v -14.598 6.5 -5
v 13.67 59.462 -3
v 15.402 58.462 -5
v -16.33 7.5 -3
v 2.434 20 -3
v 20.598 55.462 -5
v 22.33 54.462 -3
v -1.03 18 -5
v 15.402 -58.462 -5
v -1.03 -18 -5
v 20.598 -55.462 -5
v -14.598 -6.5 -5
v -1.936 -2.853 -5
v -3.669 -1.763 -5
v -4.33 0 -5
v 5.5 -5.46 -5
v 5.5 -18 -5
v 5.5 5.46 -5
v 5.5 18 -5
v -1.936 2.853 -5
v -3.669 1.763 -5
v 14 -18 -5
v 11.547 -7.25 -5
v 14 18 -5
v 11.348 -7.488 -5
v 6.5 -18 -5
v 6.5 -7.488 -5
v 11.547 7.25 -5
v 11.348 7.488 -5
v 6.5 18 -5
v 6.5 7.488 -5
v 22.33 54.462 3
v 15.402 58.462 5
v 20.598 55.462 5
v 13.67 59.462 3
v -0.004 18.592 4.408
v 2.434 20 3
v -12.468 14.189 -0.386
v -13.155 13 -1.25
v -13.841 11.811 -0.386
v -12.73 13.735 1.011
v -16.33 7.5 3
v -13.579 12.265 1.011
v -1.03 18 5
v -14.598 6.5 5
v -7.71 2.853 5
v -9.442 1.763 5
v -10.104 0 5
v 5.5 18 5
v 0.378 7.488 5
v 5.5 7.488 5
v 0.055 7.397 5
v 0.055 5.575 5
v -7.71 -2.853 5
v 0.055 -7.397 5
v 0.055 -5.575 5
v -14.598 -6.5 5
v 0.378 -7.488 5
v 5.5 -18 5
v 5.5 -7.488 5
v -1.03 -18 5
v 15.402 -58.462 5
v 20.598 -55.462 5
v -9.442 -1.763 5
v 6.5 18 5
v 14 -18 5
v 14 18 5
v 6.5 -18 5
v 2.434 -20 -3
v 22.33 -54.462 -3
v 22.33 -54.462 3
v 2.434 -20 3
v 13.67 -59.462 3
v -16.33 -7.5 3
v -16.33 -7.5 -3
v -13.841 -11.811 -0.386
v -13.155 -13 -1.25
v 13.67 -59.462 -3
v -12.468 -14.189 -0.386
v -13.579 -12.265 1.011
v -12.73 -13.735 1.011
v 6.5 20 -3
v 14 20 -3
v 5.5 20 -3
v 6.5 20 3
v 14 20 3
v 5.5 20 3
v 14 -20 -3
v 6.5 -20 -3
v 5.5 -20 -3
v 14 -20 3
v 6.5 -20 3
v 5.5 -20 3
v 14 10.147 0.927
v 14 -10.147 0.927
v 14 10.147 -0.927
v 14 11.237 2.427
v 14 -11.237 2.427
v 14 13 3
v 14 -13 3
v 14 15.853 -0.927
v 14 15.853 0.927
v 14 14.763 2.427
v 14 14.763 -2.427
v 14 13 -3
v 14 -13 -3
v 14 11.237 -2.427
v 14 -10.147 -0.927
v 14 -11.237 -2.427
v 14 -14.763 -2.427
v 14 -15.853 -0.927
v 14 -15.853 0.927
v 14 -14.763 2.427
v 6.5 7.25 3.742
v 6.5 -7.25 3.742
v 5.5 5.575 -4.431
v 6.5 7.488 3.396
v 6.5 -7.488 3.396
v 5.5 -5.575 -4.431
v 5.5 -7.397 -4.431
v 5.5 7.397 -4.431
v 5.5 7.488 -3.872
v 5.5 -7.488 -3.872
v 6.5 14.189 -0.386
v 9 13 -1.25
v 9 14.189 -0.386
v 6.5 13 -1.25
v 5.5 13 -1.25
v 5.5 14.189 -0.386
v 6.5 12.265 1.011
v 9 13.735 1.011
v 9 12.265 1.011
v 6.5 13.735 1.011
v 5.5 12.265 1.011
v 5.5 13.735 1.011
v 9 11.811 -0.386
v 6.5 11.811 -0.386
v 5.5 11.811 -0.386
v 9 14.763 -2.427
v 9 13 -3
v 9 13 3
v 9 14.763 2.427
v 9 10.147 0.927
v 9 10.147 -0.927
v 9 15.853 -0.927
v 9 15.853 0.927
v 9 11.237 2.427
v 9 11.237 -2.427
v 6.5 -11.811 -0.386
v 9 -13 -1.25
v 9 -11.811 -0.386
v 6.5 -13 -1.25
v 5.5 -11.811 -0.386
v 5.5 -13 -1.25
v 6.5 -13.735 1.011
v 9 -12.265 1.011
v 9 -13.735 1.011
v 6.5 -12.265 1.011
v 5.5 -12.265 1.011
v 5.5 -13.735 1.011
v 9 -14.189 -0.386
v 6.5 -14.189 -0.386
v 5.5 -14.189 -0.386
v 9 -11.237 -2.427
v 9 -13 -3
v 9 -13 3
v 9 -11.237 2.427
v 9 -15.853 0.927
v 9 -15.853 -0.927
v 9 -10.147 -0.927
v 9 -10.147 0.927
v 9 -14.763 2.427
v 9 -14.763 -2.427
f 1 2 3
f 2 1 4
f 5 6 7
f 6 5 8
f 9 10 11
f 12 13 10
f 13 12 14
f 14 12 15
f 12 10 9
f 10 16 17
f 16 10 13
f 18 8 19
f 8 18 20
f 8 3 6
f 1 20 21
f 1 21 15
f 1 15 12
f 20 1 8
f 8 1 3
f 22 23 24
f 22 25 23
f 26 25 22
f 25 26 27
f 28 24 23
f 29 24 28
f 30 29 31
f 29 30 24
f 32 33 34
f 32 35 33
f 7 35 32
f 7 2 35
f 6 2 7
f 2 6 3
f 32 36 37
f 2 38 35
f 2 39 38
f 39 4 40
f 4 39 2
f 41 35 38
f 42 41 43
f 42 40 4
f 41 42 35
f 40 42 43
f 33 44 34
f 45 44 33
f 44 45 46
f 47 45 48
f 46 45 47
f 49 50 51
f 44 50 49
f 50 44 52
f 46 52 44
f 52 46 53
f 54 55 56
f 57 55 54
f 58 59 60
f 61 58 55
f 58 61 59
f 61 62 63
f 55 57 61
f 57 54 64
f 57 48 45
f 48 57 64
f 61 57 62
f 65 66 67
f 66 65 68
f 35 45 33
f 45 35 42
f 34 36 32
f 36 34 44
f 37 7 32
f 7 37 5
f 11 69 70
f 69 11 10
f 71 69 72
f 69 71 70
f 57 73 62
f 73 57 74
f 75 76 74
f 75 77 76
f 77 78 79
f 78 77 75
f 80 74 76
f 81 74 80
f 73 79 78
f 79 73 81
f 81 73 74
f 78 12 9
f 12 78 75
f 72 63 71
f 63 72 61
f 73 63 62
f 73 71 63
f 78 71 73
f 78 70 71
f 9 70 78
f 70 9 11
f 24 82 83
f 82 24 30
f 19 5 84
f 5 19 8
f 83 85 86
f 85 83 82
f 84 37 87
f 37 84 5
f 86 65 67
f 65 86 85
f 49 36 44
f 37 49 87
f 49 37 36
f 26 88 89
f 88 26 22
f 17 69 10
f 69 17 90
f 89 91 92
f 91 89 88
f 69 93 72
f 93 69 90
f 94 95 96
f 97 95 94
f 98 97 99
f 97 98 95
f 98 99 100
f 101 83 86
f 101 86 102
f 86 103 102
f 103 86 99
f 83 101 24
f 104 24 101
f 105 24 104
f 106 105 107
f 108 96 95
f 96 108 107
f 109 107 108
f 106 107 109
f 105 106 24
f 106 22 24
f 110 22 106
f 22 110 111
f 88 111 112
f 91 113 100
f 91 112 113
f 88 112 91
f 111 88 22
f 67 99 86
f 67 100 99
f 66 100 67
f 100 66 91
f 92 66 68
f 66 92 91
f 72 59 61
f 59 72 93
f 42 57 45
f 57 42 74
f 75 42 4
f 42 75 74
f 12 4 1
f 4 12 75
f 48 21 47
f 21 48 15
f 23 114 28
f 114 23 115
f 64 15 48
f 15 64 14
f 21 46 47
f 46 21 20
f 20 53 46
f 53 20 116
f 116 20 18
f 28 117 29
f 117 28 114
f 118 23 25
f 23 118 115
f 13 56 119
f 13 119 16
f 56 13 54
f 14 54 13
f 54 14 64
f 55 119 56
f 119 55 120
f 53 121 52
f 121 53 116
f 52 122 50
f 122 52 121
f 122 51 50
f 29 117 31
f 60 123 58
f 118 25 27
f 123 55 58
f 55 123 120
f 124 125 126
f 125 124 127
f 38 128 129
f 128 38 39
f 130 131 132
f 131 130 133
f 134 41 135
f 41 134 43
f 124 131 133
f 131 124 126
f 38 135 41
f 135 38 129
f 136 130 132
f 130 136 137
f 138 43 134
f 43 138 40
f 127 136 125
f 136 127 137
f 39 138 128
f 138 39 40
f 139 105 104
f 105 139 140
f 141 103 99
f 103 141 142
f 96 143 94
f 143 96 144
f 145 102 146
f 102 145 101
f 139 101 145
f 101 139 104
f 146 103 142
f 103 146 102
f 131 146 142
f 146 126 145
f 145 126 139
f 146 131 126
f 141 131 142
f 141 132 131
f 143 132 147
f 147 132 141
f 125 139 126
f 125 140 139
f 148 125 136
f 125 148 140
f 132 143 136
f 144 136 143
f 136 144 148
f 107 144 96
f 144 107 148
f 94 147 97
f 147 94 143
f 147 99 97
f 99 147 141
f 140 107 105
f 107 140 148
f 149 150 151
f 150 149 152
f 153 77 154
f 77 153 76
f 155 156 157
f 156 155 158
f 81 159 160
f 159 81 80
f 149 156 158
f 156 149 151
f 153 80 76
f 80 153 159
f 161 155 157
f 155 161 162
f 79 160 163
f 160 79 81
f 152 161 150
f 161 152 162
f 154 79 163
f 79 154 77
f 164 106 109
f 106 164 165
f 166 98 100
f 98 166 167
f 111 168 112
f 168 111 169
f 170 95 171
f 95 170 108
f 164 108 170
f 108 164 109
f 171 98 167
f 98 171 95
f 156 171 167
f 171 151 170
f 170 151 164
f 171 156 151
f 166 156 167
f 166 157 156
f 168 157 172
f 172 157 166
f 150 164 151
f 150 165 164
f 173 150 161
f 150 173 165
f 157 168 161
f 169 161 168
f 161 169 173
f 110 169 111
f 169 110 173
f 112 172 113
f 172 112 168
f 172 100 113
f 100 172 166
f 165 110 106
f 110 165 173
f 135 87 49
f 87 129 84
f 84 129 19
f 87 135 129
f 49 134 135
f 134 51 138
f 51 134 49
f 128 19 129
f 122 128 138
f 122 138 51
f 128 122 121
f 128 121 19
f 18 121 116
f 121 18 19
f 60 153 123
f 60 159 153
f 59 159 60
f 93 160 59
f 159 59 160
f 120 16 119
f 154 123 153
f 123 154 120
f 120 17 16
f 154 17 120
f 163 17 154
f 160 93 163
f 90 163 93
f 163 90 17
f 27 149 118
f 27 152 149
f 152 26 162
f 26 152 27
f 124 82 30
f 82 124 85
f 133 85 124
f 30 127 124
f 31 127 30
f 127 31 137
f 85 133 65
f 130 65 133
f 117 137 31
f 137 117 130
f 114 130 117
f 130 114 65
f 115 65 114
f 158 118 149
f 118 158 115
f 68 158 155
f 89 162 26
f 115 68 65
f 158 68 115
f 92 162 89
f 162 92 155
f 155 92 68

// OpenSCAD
wireD = 4;
wireSpacing = 28.5 - 3.5;

module support() {
    #rotate([0,-30,0]) translate([-13.5/2+0.5,0,0]) {
        hull () {
            translate([6/2, 0, 0]) cylinder(d=6, h=100, center=true);
            translate([13.5, 14.5/2, 0]) cylinder(d=0.5, h=100, center=true);
            translate([13.5, -14.5/2, 0]) cylinder(d=0.5, h=100, center=true);
        }
        hull () {
            translate([13.5, 14.5/2, 0]) cylinder(d=0.5, h=100, center=true);
            translate([13.5, -14.5/2, 0]) cylinder(d=0.5, h=100, center=true);
            translate([9, 14.5/2, 0]) cylinder(d=0.5, h=100, center=true);
            translate([9, -14.5/2, 0]) cylinder(d=0.5, h=100, center=true);
        }
    }
}
module easedRect(l, w, h, bevel) {
    rotate([0,90,0])
    translate([-w, 0, 0])
    linear_extrude(height=l, center=false) polygon(
        points=[
            [0, bevel],
            [0, h-bevel],
            [bevel, h],
            [w-bevel, h],
            [w, h-bevel],
            [w, bevel],
            [w-bevel, 0],
            [bevel, 0],
        ]);

}

module wire(d=wireD) {
    rotate([90,0,0])
    cylinder(d=d, h=100, center=true, $fn=12);
}
module shelf() {
    for (i=[0:4]) {
        translate([i*-wireSpacing,0,0])
        wire();
    }

}

module arms() {
    translate([6, 40 - 15, 0]) rotate([0,0,60]) translate([0,-5,0]) easedRect(60,10,10,2);
    translate([6, 15, 0]) rotate([0,0,-60]) translate([0,-5,0]) easedRect(60,10,10,2);
}
difference() {
    translate([-30/2 - 3,-40/2,-10/2]) union() {
        /*cube(size=[30, 40, 10], center=false);*/
        intersection() {
            easedRect(32, 10, 40, 2);
            hull() arms();
        }
        arms();
        /*#translate([8,0,10/2]) rotate([90,0,0]) cylinder(d=3.25, h=100, center=true);*/
    }
    support();
    translate([6,0,0]) cube(size=[1, 40, 40], center=true);
    translate([0, 13, 0]) rotate([0,90,0]) {
        cylinder(d=2.5, h=100, center=true);
        translate([0, 0, 9]) cylinder(d=6, h=100, center=false);
    }
    translate([0, -13, 0]) rotate([0,90,0]) {
        cylinder(d=2.5, h=100, center=true);
        translate([0, 0, 9]) cylinder(d=6, h=100, center=false);
    }
}
